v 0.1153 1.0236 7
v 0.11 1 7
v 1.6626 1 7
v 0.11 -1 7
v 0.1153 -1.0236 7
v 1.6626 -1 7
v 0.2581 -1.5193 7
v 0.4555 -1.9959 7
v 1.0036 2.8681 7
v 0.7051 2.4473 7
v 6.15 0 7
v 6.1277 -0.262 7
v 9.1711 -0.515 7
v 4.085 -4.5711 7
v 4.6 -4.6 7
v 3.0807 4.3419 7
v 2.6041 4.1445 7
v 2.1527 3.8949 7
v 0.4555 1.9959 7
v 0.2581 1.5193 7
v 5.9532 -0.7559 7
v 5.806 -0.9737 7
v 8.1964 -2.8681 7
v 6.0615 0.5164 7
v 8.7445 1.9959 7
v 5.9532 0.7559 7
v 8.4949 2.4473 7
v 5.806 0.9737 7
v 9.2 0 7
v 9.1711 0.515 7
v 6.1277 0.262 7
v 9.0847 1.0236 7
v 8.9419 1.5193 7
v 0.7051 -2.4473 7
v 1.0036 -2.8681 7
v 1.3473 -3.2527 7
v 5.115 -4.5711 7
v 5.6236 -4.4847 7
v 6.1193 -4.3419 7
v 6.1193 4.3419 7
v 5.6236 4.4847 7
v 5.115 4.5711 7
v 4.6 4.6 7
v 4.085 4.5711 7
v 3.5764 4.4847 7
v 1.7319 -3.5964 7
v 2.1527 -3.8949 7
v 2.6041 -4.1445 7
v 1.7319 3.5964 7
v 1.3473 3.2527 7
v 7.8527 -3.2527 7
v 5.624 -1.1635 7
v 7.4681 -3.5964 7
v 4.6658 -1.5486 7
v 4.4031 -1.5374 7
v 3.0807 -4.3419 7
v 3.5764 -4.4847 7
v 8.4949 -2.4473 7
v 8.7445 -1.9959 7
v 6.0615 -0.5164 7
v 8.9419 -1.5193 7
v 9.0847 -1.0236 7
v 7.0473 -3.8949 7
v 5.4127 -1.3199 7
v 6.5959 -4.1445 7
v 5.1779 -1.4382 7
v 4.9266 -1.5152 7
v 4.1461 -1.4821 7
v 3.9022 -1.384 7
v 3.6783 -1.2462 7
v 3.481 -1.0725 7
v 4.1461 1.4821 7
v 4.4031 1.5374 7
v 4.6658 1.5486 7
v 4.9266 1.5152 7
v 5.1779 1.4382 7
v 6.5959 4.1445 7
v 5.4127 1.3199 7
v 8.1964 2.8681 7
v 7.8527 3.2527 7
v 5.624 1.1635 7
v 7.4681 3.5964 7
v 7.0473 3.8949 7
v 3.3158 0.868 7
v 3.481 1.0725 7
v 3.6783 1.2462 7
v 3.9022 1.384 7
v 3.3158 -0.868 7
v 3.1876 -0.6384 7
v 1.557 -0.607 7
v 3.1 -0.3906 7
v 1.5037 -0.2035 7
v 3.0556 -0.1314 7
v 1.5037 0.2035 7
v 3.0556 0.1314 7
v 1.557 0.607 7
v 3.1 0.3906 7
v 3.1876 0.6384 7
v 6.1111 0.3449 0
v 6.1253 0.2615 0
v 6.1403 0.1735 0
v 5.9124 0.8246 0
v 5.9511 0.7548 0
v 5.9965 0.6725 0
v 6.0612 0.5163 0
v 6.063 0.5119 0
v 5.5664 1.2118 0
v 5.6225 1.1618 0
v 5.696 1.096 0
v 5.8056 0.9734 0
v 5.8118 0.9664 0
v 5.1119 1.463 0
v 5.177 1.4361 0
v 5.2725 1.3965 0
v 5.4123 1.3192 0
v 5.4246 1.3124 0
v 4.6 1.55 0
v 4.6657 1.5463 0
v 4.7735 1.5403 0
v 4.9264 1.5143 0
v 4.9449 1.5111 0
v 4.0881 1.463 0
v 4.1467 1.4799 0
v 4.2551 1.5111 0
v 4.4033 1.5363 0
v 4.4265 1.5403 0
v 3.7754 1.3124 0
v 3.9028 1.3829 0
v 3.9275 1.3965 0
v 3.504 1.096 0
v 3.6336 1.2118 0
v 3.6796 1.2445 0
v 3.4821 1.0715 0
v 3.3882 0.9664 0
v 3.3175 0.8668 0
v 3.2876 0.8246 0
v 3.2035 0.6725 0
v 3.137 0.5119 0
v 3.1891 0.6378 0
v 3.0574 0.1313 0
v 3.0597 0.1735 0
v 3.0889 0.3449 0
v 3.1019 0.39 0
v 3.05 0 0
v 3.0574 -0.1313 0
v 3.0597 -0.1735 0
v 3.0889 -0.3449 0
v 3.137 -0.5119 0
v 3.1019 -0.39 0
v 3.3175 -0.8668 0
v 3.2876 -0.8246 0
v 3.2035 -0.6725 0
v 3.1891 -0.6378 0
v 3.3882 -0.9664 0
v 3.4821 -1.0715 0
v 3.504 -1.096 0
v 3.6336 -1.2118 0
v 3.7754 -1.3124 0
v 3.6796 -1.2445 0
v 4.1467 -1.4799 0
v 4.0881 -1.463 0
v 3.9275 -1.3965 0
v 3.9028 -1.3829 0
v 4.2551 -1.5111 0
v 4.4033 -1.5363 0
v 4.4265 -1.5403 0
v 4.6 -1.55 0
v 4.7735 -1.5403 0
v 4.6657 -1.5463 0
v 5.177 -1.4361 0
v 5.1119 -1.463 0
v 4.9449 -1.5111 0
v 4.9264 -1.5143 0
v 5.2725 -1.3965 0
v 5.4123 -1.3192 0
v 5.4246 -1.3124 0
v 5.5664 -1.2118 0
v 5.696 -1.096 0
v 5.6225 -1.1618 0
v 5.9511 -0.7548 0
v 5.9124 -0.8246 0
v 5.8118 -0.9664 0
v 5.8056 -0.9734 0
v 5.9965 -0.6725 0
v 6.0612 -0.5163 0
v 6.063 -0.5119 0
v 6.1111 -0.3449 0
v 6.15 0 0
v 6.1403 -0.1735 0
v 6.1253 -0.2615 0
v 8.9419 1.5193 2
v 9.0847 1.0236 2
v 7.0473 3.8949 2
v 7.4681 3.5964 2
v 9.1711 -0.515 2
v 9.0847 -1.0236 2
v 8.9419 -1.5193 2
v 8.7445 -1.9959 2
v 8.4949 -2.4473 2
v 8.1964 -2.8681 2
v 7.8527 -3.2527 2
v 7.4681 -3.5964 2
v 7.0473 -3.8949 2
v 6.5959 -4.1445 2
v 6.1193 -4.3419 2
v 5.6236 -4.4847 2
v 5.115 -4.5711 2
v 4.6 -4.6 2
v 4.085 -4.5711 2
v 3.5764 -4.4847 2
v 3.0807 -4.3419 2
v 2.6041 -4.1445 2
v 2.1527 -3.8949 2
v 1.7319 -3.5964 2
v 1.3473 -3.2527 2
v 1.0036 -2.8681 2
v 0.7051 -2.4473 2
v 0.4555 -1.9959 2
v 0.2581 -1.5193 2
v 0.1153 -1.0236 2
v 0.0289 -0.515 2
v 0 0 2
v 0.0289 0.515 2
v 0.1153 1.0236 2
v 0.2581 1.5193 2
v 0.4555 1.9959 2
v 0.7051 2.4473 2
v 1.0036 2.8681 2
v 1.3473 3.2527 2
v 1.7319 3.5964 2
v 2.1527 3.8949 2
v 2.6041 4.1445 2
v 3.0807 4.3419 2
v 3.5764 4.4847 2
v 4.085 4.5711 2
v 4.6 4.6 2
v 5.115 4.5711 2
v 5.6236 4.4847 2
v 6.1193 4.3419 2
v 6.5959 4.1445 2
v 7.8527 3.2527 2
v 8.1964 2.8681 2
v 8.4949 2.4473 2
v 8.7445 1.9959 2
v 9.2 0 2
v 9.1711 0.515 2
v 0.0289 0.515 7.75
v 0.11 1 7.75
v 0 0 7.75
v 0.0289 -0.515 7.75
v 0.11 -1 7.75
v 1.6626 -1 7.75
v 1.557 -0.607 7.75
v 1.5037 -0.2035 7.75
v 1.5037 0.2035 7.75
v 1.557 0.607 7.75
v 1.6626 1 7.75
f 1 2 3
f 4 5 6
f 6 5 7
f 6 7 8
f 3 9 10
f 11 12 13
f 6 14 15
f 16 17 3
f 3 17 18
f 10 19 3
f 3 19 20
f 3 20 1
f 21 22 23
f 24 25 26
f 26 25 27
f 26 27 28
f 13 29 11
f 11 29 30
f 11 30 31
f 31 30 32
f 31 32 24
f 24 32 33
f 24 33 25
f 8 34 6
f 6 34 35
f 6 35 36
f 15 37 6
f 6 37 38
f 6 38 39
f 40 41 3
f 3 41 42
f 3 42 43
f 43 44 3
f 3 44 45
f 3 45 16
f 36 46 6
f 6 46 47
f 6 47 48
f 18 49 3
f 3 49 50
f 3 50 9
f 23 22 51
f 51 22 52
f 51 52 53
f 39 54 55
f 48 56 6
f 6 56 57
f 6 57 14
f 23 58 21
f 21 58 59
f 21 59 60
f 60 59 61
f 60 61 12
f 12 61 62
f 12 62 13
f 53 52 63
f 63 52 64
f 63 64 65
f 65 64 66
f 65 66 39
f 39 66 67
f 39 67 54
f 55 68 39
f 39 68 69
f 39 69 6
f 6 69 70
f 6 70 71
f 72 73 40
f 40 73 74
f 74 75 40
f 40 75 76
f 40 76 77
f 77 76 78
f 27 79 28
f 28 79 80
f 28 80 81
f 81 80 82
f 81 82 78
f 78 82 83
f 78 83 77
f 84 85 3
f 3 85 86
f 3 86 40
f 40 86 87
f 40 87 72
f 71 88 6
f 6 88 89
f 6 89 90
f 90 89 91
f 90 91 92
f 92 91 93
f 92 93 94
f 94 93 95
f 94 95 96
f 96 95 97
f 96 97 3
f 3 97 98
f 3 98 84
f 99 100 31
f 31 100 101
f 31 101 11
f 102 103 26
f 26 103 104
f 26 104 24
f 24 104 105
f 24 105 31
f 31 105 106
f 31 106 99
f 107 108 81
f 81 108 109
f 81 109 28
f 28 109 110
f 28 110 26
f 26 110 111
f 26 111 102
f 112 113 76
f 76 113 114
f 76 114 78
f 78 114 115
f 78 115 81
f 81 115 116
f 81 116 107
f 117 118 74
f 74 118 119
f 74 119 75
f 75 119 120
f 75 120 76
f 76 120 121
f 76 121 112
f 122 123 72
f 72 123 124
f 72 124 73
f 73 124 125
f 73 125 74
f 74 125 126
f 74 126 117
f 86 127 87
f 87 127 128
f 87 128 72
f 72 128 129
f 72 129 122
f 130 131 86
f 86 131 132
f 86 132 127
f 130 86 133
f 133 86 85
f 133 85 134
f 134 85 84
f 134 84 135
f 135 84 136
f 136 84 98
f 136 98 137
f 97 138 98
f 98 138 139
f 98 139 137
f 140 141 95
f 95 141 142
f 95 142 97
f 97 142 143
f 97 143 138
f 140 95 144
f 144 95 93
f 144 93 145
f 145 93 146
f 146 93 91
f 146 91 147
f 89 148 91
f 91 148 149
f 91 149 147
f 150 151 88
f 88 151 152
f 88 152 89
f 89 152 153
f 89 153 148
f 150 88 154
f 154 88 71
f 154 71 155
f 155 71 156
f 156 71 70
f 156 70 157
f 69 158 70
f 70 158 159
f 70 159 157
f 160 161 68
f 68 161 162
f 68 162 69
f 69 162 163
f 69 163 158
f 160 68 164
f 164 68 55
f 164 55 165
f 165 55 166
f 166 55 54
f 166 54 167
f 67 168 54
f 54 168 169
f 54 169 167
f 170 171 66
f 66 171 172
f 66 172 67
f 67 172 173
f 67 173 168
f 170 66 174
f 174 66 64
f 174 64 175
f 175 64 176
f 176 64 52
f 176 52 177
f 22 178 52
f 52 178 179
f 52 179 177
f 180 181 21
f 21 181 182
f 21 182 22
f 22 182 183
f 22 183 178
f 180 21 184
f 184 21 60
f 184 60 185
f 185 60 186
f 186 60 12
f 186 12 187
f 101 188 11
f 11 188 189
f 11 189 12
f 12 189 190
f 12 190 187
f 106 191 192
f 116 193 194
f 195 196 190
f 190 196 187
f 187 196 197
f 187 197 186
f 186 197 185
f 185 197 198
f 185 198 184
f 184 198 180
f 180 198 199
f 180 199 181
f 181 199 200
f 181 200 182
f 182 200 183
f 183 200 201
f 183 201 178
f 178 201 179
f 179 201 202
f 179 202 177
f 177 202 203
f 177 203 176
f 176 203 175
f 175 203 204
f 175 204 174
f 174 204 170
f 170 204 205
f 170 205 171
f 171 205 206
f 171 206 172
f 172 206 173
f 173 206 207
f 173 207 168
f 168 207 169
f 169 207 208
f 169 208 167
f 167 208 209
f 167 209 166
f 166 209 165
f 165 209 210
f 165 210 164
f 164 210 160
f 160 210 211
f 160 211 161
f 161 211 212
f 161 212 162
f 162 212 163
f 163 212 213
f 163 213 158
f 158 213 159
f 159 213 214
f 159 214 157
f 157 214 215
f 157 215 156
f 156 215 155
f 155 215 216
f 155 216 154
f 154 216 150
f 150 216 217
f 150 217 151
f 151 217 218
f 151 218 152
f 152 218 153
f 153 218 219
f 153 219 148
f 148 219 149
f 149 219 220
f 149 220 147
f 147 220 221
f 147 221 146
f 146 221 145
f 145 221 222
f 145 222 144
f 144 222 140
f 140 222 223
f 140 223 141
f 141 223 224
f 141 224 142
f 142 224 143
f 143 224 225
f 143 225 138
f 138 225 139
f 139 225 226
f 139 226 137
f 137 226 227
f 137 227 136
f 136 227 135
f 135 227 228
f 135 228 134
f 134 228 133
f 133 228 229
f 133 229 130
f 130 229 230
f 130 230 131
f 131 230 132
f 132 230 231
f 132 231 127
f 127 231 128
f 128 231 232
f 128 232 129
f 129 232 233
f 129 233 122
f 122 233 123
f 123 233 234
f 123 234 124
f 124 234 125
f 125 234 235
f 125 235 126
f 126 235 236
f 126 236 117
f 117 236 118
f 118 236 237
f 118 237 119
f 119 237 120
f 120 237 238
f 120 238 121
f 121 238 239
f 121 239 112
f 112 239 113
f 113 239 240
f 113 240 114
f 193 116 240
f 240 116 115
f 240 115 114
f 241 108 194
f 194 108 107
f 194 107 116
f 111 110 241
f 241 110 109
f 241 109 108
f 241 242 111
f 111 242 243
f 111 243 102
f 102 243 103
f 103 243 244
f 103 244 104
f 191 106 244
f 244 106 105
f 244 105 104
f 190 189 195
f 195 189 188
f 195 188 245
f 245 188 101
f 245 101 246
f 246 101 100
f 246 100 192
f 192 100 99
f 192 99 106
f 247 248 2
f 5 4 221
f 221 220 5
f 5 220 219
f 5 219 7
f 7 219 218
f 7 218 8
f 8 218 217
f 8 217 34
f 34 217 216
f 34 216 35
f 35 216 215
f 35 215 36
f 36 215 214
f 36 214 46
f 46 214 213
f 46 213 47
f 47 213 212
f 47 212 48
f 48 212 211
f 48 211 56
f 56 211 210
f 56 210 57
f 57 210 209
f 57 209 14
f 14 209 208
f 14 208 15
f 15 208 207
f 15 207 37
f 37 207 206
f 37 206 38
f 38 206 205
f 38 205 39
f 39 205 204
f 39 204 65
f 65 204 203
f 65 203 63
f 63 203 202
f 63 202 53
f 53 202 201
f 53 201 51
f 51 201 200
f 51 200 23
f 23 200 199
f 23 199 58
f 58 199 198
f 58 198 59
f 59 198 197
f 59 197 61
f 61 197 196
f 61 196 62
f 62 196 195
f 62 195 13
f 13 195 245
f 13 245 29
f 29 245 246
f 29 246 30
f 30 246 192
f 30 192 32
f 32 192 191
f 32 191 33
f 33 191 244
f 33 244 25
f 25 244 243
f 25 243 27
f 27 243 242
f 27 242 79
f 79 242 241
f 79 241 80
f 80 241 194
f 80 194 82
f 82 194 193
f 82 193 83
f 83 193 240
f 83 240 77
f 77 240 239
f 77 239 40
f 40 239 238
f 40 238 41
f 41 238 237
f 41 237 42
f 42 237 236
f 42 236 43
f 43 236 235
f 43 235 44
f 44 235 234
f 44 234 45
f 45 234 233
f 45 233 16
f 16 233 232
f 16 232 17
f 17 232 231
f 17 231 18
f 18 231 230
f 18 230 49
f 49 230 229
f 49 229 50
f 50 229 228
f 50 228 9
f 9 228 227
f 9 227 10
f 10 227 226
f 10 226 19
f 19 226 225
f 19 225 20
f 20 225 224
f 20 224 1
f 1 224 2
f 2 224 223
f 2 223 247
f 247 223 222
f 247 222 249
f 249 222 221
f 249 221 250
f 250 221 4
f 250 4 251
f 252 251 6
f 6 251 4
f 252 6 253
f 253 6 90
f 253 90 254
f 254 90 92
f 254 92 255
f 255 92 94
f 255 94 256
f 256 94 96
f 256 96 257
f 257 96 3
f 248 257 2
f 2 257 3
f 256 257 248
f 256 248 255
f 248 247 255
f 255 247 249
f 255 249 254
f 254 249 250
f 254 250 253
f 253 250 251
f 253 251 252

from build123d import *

# Parameters (mm, degrees)
BOSS_EXTRUDE1_DEPTH = 0.75


with BuildPart() as part:
    # Sketch1 → Revolve1 (revolve)
    with BuildSketch(Plane(origin=(0, 0, 0), x_dir=(1, 0, 0), z_dir=(0, 1, 0))):
        Polygon((3.05, 0), (0, -2), (0, -7), (3.05, -7), align=None)
    revolve(axis=Axis((4.6, 0, 0), (0, 0, 1)))

    # Sketch2 → Boss-Extrude1 (add)
    with BuildSketch(Plane.XY.offset(7)):
        with BuildLine():
            Line((0.110011136, 1), (1.6626194, 1))
            ThreePointArc((1.6626194, 1), (1.538733475, 0.506805736), (1.497065133, 0))
            ThreePointArc((1.497065133, 0), (1.538733475, -0.506805736), (1.6626194, -1))
            Line((1.6626194, -1), (0.110011136, -1))
            ThreePointArc((0.110011136, -1), (0, 0), (0.110011136, 1))
        make_face()
    extrude(amount=BOSS_EXTRUDE1_DEPTH)


solid = part.part
